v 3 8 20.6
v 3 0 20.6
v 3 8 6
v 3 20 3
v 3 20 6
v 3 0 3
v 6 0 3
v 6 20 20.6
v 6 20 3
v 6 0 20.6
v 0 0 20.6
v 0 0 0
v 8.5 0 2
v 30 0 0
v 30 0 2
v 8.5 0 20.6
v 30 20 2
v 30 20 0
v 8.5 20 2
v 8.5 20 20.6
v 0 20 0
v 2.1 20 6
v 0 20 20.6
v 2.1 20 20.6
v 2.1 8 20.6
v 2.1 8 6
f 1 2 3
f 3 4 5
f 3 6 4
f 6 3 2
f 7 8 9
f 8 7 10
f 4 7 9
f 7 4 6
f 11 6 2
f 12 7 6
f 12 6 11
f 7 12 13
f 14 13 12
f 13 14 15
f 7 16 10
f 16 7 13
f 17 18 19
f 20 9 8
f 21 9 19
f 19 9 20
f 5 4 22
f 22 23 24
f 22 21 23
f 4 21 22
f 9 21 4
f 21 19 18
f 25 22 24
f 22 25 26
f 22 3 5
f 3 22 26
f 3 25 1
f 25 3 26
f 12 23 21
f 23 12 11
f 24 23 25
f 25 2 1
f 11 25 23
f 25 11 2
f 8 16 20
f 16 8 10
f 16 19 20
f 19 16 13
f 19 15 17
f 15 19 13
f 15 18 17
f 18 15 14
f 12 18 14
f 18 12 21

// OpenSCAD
/* File: ftdi_clip.scad
 * Clip for 2nd FTDI 
 * Author: deh
 * Latest edit: 20191002
 */

 $fn = 20;
 
 thick = 2.0;

/* FTDI unit goes between pcb and case wall */
ftd_base_len = 35;	// Lenth of base part
ftd_post_len = 15;	// Length of tall part
ftd_slot_base = thick;// Offset from bottom of case
ftd_slot_wid = 2;		// Width of pcb

ftd_slot_wid2 = 3.0;	// Width at ahead of IC
ftd_slot_wid3 = 3.9;	// Width at IC
ftd_in_wid = 2.0;	// Inner wall width
ftd_tot_wid = ftd_slot_wid2+ftd_in_wid+1.5;	// Width total
ftd_tot_len = 20;
ftd_ic_len = 12;	// IC length
ftd_tot_ht = 18.6;

/* ***** fillet *****
 * r = radius of fillet
 * l = length of fillet
 fillet (r,l);
*/
module fillet(r,l)
{
   difference()
   {
     union()
     {
       cube([2*r,2*r,l]);
     }
     union()
     {
       translate ([r,r,0])
           cylinder(d = 2*r + 0.1, h = l, center = false);
       translate([r,0,0])
           cube([r,2*r,l],center = false);
       translate([0,r,0])
           cube([2*r,r,l],center = false);
     }
   }
}
module ftdi_post()
{
echo(ftd_tot_wid,"ftd_tot_wid");
	translate([0,0,thick])
	{
		difference()
		{
			union()
			{
				translate([0,0,0])
					cube([ftd_tot_wid+2, ftd_tot_len, ftd_tot_ht],center=false);

/*				translate([0.05,ftd_tot_len,-.05])
					rotate([0,-90,0])
					rotate([90.0,0])
			 			fillet (4,ftd_tot_len);	
*/
			}
			union()
			{
              translate([1,0,0])
              {  
				translate([ftd_in_wid,0,1])
					cube([ftd_slot_wid2,ftd_tot_len,ftd_tot_ht],center=false);
				ftx = ftd_in_wid - (ftd_slot_wid3 - ftd_slot_wid2);
				fty = ftd_tot_len - ftd_ic_len;
				translate([ftx,fty,4])
					cube([ftd_slot_wid3,ftd_ic_len,ftd_tot_ht],center=false);
              }
			
			}
	 	}
	}
}
module ftdi_base(a)
{
    translate([0,0,0])
        cube([30,20,2],center=false);
}

ftdi_post();
ftdi_base([0,0,0]);
 
